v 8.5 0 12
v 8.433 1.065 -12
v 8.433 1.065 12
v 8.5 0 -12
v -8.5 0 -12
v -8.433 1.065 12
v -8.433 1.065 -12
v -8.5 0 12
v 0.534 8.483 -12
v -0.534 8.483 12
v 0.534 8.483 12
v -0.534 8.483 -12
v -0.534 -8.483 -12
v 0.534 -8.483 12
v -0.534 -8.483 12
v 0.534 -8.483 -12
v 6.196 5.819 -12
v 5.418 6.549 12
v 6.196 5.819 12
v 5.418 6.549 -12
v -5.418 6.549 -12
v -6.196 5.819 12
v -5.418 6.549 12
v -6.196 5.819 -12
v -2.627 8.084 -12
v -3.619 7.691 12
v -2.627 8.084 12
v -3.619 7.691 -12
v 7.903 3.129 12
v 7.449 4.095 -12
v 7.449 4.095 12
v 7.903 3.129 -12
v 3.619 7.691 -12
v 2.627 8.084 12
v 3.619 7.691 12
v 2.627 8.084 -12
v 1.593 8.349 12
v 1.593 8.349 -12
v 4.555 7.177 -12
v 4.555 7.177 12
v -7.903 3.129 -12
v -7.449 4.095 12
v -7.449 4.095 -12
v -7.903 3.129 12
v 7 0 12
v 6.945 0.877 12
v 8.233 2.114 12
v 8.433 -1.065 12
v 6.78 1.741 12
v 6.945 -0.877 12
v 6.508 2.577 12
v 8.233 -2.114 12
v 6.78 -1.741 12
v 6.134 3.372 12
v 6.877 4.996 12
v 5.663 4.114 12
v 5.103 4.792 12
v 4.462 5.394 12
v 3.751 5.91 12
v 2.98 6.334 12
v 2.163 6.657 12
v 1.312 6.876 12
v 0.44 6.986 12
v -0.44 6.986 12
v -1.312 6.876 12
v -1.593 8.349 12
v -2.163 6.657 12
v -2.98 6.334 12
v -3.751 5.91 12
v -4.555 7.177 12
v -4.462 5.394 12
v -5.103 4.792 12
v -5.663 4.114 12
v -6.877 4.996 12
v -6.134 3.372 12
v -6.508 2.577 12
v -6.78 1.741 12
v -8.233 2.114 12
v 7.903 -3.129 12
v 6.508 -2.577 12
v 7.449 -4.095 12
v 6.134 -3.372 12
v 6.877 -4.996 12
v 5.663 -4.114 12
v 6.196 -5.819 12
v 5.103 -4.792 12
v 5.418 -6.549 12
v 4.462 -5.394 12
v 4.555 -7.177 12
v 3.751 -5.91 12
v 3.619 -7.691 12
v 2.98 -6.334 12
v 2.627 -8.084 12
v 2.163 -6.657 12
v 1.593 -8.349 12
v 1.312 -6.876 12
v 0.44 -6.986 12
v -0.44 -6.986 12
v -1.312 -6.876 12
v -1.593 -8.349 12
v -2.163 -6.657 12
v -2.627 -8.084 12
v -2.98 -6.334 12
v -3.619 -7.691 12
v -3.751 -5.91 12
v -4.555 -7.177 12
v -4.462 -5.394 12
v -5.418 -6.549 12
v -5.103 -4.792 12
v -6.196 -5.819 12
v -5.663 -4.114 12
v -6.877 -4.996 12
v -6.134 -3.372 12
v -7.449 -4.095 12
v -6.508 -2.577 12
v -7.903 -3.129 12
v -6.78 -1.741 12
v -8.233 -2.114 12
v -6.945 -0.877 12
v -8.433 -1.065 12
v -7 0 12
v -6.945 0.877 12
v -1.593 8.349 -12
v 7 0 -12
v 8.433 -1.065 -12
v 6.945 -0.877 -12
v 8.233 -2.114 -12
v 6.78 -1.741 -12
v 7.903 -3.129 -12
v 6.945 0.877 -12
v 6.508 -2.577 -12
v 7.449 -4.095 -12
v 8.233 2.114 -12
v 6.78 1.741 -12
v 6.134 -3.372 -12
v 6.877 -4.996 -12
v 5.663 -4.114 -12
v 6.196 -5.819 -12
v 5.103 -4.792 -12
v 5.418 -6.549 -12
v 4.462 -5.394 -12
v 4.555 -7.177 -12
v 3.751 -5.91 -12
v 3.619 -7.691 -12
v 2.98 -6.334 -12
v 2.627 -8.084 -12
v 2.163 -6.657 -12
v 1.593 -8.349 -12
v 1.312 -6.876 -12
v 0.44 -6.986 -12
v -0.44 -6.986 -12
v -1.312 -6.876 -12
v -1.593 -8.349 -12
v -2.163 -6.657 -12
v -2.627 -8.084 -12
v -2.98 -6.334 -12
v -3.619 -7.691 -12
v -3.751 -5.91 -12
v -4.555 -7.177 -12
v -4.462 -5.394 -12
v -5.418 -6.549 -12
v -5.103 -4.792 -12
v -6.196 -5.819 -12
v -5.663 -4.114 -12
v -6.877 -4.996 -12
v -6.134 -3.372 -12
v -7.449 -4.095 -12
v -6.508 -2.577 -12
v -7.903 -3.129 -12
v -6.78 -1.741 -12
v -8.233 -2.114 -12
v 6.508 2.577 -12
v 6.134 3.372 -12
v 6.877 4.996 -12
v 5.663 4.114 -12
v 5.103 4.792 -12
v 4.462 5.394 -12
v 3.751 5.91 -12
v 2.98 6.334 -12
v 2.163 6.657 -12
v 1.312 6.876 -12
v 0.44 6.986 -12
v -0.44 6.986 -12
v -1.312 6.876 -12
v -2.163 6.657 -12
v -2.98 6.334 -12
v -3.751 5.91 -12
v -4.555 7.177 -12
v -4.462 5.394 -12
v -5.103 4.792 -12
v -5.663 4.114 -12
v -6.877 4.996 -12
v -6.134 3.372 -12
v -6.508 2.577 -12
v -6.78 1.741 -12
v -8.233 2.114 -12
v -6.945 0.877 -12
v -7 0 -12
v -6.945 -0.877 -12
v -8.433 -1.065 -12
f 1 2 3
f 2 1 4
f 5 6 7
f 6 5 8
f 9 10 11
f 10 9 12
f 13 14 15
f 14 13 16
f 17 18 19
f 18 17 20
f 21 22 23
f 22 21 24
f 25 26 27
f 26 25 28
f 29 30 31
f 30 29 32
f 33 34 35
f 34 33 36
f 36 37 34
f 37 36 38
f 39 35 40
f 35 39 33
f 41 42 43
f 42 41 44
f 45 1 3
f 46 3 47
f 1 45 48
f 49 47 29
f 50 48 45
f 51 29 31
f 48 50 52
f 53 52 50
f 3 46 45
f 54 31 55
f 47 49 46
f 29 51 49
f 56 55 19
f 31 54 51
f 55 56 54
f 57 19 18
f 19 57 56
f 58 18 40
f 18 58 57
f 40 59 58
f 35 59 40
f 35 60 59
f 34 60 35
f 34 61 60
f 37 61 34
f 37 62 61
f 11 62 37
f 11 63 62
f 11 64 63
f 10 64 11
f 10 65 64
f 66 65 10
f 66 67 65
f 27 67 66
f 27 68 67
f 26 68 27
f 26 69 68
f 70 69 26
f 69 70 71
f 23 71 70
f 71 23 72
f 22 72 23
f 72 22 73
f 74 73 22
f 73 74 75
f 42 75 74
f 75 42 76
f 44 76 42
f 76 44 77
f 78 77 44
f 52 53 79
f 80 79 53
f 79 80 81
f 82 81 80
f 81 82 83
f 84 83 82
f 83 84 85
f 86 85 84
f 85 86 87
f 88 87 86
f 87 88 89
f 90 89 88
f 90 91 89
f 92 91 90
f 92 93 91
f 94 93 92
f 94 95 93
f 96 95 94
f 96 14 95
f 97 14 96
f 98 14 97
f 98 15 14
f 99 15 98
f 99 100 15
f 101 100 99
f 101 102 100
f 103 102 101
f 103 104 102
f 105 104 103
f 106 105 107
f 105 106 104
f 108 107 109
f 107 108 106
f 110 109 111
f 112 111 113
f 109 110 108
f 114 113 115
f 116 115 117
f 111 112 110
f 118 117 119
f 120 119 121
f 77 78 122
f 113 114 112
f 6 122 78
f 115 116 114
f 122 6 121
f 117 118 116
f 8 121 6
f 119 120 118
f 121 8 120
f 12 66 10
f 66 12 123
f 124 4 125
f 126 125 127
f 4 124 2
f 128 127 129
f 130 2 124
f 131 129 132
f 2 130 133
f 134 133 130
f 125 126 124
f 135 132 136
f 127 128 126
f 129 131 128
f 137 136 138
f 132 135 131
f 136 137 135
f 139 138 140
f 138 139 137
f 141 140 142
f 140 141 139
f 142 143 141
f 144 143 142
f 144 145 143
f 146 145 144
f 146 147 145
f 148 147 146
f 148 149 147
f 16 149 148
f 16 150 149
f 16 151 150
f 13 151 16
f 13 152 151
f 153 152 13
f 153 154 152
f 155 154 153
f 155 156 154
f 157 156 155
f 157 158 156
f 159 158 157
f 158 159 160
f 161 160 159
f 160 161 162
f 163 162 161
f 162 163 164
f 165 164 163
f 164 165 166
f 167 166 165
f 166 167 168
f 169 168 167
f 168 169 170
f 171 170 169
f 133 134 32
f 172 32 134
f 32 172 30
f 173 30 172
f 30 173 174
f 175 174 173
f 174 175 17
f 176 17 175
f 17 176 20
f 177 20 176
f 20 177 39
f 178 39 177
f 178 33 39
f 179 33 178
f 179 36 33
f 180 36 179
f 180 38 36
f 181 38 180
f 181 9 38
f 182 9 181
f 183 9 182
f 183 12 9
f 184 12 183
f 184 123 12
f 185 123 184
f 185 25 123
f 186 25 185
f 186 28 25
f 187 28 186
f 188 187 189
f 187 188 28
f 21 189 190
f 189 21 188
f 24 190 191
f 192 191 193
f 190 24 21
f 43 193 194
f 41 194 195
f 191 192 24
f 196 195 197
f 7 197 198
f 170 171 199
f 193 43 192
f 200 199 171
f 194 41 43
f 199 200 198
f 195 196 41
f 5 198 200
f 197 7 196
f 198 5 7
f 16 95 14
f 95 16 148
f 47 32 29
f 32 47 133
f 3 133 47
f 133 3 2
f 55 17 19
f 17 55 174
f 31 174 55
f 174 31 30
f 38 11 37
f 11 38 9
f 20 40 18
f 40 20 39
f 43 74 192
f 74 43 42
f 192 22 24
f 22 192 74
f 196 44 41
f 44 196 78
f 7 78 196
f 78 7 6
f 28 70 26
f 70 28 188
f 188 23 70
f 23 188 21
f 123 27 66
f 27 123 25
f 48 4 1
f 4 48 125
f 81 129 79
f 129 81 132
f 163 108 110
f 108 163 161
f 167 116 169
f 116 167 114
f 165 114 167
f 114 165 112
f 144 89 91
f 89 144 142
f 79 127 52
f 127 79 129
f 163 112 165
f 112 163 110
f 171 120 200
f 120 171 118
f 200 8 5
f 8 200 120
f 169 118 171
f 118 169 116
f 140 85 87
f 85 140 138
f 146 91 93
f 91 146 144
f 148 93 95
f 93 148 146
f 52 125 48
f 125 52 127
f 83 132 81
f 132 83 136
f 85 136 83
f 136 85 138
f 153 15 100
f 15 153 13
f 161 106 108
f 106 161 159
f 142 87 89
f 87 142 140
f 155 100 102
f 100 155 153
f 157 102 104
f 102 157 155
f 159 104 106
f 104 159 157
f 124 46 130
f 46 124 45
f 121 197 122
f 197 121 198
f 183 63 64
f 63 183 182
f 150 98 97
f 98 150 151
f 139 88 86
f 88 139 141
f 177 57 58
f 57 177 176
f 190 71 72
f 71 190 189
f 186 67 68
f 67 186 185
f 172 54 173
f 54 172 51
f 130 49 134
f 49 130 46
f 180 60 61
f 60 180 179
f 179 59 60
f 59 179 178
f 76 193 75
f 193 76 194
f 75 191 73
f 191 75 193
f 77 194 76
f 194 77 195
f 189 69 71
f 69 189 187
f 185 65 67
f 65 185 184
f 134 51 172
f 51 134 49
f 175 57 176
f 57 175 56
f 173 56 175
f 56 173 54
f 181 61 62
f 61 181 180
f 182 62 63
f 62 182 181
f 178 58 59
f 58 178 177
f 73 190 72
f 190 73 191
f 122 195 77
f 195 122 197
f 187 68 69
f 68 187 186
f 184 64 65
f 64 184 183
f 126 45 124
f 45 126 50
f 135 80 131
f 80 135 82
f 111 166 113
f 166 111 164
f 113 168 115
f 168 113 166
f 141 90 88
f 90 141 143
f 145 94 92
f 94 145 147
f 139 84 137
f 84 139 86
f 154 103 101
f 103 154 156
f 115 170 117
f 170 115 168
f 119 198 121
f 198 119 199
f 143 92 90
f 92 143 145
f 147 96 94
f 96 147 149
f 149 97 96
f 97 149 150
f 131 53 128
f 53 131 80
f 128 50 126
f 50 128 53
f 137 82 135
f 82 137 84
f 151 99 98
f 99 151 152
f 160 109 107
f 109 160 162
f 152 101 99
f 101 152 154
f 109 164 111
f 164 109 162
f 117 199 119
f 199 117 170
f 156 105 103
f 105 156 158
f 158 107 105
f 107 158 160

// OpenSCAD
$fn = 50;


difference() {
	union() {
		translate(v = [0, 0, -12.0000000000]) {
			cylinder(h = 24, r = 8.5000000000);
		}
	}
	union() {
		translate(v = [0, 0, -100.0000000000]) {
			cylinder(h = 200, r = 7);
		}
	}
}
